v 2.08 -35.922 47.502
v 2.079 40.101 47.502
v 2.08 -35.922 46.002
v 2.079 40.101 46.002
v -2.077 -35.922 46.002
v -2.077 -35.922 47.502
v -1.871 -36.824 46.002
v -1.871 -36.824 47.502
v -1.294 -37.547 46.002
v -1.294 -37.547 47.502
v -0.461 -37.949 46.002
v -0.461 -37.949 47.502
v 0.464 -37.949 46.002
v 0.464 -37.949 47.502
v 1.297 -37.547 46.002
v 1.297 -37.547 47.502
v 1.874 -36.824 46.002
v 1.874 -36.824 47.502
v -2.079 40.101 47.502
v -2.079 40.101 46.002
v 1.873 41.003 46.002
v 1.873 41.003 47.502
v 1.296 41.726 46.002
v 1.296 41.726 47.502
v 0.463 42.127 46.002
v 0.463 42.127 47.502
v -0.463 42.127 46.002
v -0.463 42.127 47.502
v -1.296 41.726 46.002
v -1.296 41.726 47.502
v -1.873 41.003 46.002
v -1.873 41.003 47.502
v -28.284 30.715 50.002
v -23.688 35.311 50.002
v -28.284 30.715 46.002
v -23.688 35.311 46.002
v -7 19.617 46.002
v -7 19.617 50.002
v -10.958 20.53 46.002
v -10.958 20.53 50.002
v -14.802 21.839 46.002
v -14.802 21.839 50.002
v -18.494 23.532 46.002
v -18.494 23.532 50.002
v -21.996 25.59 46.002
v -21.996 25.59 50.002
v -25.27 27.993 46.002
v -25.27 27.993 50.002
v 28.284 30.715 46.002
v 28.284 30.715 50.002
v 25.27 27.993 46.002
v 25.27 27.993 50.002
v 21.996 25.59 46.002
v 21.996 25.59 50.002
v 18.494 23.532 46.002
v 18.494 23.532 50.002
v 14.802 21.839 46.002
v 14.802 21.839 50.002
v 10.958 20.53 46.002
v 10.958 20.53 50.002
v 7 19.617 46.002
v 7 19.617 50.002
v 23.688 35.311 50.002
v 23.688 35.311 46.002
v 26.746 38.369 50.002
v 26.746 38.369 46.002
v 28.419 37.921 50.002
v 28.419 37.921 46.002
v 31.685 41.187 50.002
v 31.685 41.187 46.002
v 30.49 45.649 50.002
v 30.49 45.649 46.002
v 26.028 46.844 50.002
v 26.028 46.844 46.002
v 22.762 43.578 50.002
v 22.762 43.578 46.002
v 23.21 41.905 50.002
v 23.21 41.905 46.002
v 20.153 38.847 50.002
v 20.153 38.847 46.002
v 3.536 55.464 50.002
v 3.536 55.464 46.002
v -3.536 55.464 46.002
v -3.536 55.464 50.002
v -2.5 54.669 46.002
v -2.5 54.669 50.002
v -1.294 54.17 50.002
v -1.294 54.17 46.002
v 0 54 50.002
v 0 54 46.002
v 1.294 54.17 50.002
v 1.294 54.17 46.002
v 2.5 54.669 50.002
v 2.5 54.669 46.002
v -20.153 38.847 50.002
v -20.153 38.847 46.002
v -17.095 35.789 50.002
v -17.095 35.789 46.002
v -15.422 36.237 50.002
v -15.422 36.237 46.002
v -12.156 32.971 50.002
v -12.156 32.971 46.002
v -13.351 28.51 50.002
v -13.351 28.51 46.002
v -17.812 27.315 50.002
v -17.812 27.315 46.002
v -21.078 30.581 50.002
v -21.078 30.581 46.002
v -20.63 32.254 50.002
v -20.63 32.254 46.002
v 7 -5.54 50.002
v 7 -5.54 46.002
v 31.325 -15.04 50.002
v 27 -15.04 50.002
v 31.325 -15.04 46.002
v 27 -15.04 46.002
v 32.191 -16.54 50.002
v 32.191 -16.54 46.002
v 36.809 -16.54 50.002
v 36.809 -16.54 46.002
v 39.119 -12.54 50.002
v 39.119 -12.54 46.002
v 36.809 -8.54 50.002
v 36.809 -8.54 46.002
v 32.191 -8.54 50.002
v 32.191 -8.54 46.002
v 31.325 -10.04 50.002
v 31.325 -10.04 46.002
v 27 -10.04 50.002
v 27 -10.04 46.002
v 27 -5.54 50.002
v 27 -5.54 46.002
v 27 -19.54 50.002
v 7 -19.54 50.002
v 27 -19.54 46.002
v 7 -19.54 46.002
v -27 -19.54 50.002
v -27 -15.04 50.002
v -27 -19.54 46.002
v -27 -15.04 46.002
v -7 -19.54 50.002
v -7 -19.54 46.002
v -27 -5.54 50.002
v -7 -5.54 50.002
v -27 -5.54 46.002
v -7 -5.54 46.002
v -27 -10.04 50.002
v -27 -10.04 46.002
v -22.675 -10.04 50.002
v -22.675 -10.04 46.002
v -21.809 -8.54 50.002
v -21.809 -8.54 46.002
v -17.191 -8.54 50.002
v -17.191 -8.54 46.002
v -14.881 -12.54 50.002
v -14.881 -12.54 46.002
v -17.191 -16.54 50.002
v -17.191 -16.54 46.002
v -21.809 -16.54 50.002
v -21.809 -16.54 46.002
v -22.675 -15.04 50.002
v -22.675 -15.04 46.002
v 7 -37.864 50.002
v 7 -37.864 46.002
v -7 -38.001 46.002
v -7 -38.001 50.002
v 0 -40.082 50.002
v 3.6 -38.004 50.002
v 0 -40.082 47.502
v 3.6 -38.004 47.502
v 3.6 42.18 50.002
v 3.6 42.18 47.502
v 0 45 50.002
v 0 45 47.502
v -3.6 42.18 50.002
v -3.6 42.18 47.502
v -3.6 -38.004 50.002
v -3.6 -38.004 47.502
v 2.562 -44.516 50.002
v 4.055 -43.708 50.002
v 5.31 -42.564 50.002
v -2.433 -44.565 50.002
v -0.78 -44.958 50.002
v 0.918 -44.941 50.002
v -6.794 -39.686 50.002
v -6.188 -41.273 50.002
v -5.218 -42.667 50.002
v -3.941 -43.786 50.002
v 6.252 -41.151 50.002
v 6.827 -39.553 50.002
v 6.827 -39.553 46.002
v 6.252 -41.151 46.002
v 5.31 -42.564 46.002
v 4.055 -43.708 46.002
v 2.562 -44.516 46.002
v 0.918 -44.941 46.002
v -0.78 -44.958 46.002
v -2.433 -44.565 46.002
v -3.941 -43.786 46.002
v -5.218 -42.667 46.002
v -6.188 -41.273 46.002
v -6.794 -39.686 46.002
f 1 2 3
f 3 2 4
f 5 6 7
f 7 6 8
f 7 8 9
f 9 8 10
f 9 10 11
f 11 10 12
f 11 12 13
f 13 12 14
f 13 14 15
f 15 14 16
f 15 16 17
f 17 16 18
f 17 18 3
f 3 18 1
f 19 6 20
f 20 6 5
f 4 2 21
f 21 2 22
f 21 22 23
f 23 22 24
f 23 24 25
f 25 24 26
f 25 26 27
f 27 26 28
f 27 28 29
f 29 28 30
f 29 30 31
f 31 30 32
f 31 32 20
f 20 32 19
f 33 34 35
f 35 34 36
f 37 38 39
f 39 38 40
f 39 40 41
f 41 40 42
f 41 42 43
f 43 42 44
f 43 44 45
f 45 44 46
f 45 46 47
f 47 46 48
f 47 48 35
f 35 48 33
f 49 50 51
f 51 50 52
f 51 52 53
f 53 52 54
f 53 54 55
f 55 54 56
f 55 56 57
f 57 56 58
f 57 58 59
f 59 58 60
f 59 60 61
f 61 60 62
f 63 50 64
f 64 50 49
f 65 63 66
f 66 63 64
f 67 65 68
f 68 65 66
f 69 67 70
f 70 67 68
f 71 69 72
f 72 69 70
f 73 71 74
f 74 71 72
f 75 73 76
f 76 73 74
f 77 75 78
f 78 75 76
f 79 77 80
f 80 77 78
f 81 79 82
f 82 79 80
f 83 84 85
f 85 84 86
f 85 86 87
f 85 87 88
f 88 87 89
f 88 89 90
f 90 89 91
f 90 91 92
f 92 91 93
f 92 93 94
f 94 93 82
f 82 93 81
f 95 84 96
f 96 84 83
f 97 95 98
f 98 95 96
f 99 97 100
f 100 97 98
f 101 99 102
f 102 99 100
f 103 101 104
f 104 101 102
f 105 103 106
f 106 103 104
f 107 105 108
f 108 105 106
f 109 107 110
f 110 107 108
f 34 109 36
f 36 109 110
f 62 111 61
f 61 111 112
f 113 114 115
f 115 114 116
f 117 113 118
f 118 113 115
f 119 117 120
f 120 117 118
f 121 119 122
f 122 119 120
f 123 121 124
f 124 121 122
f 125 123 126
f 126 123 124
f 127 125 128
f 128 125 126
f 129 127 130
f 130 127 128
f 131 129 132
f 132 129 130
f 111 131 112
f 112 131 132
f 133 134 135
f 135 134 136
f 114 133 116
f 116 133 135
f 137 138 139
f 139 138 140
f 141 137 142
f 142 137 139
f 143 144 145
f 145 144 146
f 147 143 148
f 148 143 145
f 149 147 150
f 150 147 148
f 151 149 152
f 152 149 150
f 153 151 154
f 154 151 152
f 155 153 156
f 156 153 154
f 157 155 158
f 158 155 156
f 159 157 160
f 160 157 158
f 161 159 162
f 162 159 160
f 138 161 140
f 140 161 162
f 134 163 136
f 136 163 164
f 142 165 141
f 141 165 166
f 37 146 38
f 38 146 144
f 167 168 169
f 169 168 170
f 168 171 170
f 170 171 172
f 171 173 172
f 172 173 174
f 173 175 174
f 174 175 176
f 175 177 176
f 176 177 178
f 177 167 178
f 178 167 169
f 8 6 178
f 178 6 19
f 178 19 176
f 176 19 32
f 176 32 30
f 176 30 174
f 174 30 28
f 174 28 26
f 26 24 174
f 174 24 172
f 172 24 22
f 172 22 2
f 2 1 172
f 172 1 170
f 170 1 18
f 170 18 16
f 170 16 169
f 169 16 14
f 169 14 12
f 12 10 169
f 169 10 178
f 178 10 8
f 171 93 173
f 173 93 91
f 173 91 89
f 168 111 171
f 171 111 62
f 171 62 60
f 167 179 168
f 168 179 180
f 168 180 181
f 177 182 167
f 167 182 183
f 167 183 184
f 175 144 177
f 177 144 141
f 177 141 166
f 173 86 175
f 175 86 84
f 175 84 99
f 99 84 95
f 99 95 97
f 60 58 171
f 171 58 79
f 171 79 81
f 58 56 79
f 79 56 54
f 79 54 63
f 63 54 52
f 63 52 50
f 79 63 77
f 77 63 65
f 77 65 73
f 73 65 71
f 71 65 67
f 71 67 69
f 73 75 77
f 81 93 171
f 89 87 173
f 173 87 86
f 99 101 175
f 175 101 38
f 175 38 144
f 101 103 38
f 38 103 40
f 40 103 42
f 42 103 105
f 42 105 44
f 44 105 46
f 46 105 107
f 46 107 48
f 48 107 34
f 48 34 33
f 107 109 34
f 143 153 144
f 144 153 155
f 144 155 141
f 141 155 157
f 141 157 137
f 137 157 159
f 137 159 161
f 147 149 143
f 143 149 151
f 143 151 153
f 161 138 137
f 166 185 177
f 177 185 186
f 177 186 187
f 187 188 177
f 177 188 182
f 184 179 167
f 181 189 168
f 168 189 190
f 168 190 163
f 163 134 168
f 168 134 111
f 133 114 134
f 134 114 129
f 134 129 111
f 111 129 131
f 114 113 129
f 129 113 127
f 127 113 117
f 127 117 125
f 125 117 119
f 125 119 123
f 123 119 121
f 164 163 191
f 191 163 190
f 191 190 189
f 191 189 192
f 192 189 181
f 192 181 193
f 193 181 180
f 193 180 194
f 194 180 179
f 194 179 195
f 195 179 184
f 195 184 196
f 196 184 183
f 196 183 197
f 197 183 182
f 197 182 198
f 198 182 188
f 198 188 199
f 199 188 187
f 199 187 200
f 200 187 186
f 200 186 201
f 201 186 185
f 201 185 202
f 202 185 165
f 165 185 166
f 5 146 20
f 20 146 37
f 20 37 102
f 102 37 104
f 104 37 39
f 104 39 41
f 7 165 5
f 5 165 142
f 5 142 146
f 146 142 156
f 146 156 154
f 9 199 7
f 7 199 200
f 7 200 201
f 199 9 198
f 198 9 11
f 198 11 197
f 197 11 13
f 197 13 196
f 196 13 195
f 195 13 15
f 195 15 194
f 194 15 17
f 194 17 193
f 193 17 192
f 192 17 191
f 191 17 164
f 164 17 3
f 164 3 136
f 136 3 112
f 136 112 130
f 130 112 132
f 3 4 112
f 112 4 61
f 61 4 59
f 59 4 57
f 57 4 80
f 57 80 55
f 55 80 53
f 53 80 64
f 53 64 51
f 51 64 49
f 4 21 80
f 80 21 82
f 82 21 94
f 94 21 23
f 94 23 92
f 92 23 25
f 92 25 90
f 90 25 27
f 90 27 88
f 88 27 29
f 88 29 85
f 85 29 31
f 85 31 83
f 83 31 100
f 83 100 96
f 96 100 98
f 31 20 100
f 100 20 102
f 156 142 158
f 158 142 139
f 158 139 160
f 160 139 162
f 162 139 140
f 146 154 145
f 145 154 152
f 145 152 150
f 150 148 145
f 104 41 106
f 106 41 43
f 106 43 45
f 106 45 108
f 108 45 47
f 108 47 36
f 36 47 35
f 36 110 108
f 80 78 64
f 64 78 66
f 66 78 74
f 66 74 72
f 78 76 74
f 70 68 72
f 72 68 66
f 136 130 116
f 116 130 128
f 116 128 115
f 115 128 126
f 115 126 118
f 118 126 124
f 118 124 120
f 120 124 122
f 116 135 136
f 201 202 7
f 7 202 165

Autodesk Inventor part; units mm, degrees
ref_plane "YZ Plane" through (0, 0, 0) normal (1, 0, 0) x (0, 1, 0)
ref_plane "XZ Plane" through (0, 0, 0) normal (0, 1, 0) x (-1, 0, 0)
ref_plane "XY Plane" through (0, 0, 0) normal (0, 0, 1) x (1, 0, 0)
sketch "Náčrt1" plane through (3.6, 12.9231, 50.0016) normal (0, 0, 1) x (1, 0, 0)
  line L0 (3.4, -51.2206) -> (3.4, 32.0765) projected
  line L1 (-10.6, 32.0765) -> (-10.6, -51.2206) projected
  line L2 (3.4, 32.0765) -> (-10.6, 32.0765) projected
  circle A0 centre (-3.5987, -48.8454) radius 2.0783 projected
  line L3 (0, -50.927) -> (0, 0) projected
  line L4 (-3.6, -53.0054) -> (0, -50.927) projected
  line L5 (-7.2, -50.927) -> (-3.6, -53.0054) projected
  arc A1 (-10.6, -50.9238) -> (3.4, -50.787) centre (-3.5993, -50.9238) ccw
  line L6 (3.4, -25.4635) -> (3.4, -18.4635)
  line L7 (3.4, -18.4635) -> (23.4, -18.4635)
  line L8 (23.4, -18.4635) -> (23.4, -32.4635)
  line L9 (23.4, -32.4635) -> (3.4, -32.4635)
  line L10 (3.4, -25.4635) -> (3.4, -32.4635)
  line L11 (23.4, -25.4635) -> (23.4, -22.9635)
  line L12 (23.4, -22.9635) -> (26.9, -22.9635)
  line L13 (26.9, -22.9635) -> (26.9, -27.9635)
  line L14 (26.9, -27.9635) -> (23.4, -27.9635)
  line L15 (23.4, -25.4635) -> (23.4, -27.9635)
  line L16 (35.5188, -25.4635) -> (33.2094, -29.4635)
  line L17 (33.2094, -29.4635) -> (28.5906, -29.4635)
  line L18 (28.5906, -29.4635) -> (27.7246, -27.9635)
  line L19 (27.7246, -22.9635) -> (28.5906, -21.4635)
  line L20 (28.5906, -21.4635) -> (33.2094, -21.4635)
  line L21 (33.2094, -21.4635) -> (35.5188, -25.4635)
  line L22 (26.9, -22.9635) -> (27.7246, -22.9635)
  line L23 (26.9, -27.9635) -> (27.7246, -27.9635)
  line L24 (-10.6, -25.4635) -> (-10.6, -18.4635)
  line L25 (-10.6, -18.4635) -> (-30.6, -18.4635)
  line L26 (-30.6, -18.4635) -> (-30.6, -32.4635)
  line L27 (-30.6, -32.4635) -> (-10.6, -32.4635)
  line L28 (-10.6, -25.4635) -> (-10.6, -32.4635)
  line L29 (-30.6, -25.4635) -> (-30.6, -22.9635)
  line L30 (-30.6, -25.4635) -> (-30.6, -27.9635)
  line L31 (-27.1, -27.9635) -> (-30.6, -27.9635)
  line L32 (-30.6, -22.9635) -> (-27.1, -22.9635)
  line L33 (-27.1, -22.9635) -> (-27.1, -27.9635)
  line L34 (-27.1, -22.9635) -> (-26.2754, -22.9635)
  line L35 (-27.1, -27.9635) -> (-26.2754, -27.9635)
  line L36 (-25.4094, -29.4635) -> (-26.2754, -27.9635)
  line L37 (-26.2754, -22.9635) -> (-25.4094, -21.4635)
  line L38 (-20.7906, -29.4635) -> (-25.4094, -29.4635)
  line L39 (-25.4094, -21.4635) -> (-20.7906, -21.4635)
  line L40 (-18.4812, -25.4635) -> (-20.7906, -29.4635)
  line L41 (-20.7906, -21.4635) -> (-18.4812, -25.4635)
  line L42 (-3.6, 32.0765) -> (-3.6, 46.0765)
  arc A2 (-31.8843, 17.7922) -> (24.6843, 17.7922) centre (-3.6, 46.0765) ccw
  line L43 (-3.6, 46.0765) -> (-31.8843, 17.7922)
  line L44 (-3.6, 46.0765) -> (24.6843, 17.7922)
  line L45 (-3.6, 46.0765) -> (48.0562, 46.0765) construction
  line L46 (-25.5203, 24.1562) -> (-23.7525, 25.9239)
  line L47 (-25.5203, 24.1562) -> (-27.2881, 22.3884)
  line L48 (-24.8132, 19.9135) -> (-27.2881, 22.3884)
  line L49 (-23.7525, 25.9239) -> (-21.2777, 23.4491)
  line L50 (-21.2777, 23.4491) -> (-24.8132, 19.9135)
  line L51 (-21.2777, 23.4491) -> (-20.6946, 22.866)
  line L52 (-24.8132, 19.9135) -> (-24.2301, 19.3305)
  line L53 (-20.6946, 22.866) -> (-19.0216, 23.3143)
  line L54 (-24.6784, 17.6574) -> (-24.2301, 19.3305)
  line L55 (-19.0216, 23.3143) -> (-15.7556, 20.0483)
  line L56 (-16.951, 15.5869) -> (-21.4124, 14.3914)
  line L57 (-15.7556, 20.0483) -> (-16.951, 15.5869)
  line L58 (-21.4124, 14.3914) -> (-24.6784, 17.6574)
  line L59 (26.8896, 32.7254) -> (28.085, 28.264)
  line L60 (22.4282, 33.9209) -> (26.8896, 32.7254)
  line L61 (28.085, 28.264) -> (24.819, 24.998)
  line L62 (19.1622, 30.6549) -> (22.4282, 33.9209)
  line L63 (18.3203, 24.1562) -> (16.5525, 25.9239)
  line L64 (19.6105, 28.9819) -> (19.1622, 30.6549)
  line L65 (24.819, 24.998) -> (23.146, 25.4463)
  line L66 (19.0274, 28.3988) -> (19.6105, 28.9819)
  line L67 (19.0274, 28.3988) -> (22.563, 24.8633)
  line L68 (22.563, 24.8633) -> (23.146, 25.4463)
  line L69 (22.563, 24.8633) -> (20.0881, 22.3884)
  line L70 (18.3203, 24.1562) -> (20.0881, 22.3884)
  line L71 (16.5525, 25.9239) -> (19.0274, 28.3988)
  line L72 (24.6843, 17.7922) -> (18.3203, 24.1562)
  circle A3 centre (-3.6, 46.0765) radius 5
  line L73 (-7.2, -50.927) -> (-7.2, 32.0765)
  line L74 (0, -50.927) -> (0, 32.0765)
  line L75 (-7.2, 29.2565) -> (-3.6, 32.0765)
  line L76 (-3.6, 32.0765) -> (0, 29.2565)
  line L77 (-3.6, 29.2565) -> (-1.5215, 29.2565) construction
  circle A4 centre (-3.6, 27.178) radius 2.0785
  line L78 (-5.6785, 27.1779) -> (-5.677, -48.8455)
  line L79 (-1.5215, 27.1779) -> (-1.5203, -48.8454)
  point P0 (30.9, -25.4635)
  point P1 (26.9, -25.4635)
  point P2 (-27.1, -25.4635)
  point P3 (-23.1, -25.4635)
  point P4 (-23.0454, 21.6813)
  point P5 (-20.217, 18.8529)
  point P6 (23.4958, 25.7125)
  point P7 (23.6236, 29.4595)
  point P8 (20.7952, 26.631)
  point P9 (-10.6, 6.6937)
  point P10 (3.4, 6.6937)
  point P11 (16.5525, 25.9239)
  point P12 (-0.0645, 42.5409)
  point P13 (-7.1355, 42.5409)
  dimension "d4" = 7
  dimension "d5" = 20
  dimension "k" = 14
  dimension "d9" = 3.5
  dimension "d10" = 5
  dimension "d14" = 8
  dimension "d15" = 4
  dimension "d16" = 7
  dimension "d19" = 14
  dimension "d21" = 45
  dimension "d22" = 40
  dimension "d24" = 10
  dimension "d34" = 4.1567
  dimension "d35" = 2.0817
  dimension "d36" = 2.82
extrude "Vysunutí1" add sketch "Náčrt1" against normal blind 4 contours A1 L1 A2 L73 L5 L4 L3 L74 L0 | A2 L74 L2 L0 | L74 L3 L4 L5 L73 A2 L78 A0 L79 | A2 L79 A4 L78 L73 L75 L76 L74 | L1 L2 L73 A2 | L74 L76 L2 | L79 A0 L78 A2 | A2 L78 A4 L79 | L75 L73 L2 | A4 | A0
extrude "Vysunutí2" cut sketch "Náčrt1" against normal blind 2.5 contours L74 L3 L4 L5 L73 A2 L78 A0 L79 | A2 L79 A4 L78 L73 L75 L76 L74 | L79 A0 L78 A2 | A2 L78 A4 L79 | A4 | A0
extrude "Vysunutí3" add sketch "Náčrt1" against normal blind 4 contours L0 L7 L8 L9 | L27 L26 L31 L35 L36 L38 L40 L41 L39 L37 L34 L32 L25 L1 | L8 L12 L13 L14 | L13 L22 L19 L20 L21 L16 L17 L18 L23
extrude "Vysunutí4" add sketch "Náčrt1" against normal blind 4 contours L0 L2 L42 A3 L44 A2 | A2 L43 L48 L52 L54 L58 L56 L57 L55 L53 L51 L49 A3 L42 L2 L1 | L44 L71 L67 L69 | L67 L66 L64 L62 L60 L59 L61 L65 L68
sketch "Náčrt2" plane through (3.6, 12.9231, 50.0016) normal (0, 0, 1) x (1, 0, 0)
  line L0 (-7.2, 0) -> (-3.6, 2.0785) projected
  line L1 (-3.6, 2.0785) -> (0, 0) projected
  arc A0 (-1.525, -2.1008) -> (-5.675, -2.1796) centre (-3.6012, -2.0791) ccw projected
  line L2 (-5.675, -2.1796) -> (-5.675, -48.7542) projected
  line L3 (-1.525, -48.7062) -> (-1.525, -2.1008) projected
  arc A1 (-5.675, -48.7542) -> (-1.525, -48.7062) centre (-3.5987, -48.8454) ccw projected
  line L4 (-3.6, -53.0054) -> (-7.2, -50.927) projected
  line L5 (-7.2, -50.927) -> (-7.2, 0) projected
  line L6 (0, -50.927) -> (-3.6, -53.0054) projected
  line L7 (0, 29.2565) -> (0, -50.927) projected
  line L8 (-7.2, 35) -> (-3.6, 37.0785)
  line L9 (-3.6, 37.0785) -> (0, 35)
  line L10 (-7.2, 0) -> (-7.2, 35)
  line L11 (0, 0) -> (0, 35)
  circle A2 centre (-3.6012, -2.0791) radius 2.0763
  circle A3 centre (-3.601, 32.9202) radius 2.0763
  line L12 (-3.6406, -0.0032) -> (-3.6, 2.0785)
  line L13 (-5.675, -2.1796) -> (-5.6773, 32.9201)
  line L14 (-1.525, -2.1008) -> (-1.5247, 32.9202)
  line L15 (-7.2, 0) -> (-5.6752, 0.8803)
  line L16 (-5.6752, 0.8803) -> (-3.6, 2.0785)
  line L17 (-3.6, 2.0785) -> (-1.525, 0.8804)
  line L18 (-1.525, 0.8804) -> (0, 0)
  point P0 (-3.6, -12.9231)
  dimension "d27" = 35
  dimension "d28" = 37.0817
  dimension "d" = 4.1525
  dimension "d30" = 4.1525
  dimension "d31" = 4.1583
  dimension "d32" = 3.6012
  dimension "d33" = 3.601
extrude "Vysunutí5" cut sketch "Náčrt1" against normal through all contours L79 A0 L78 A2 | A2 L78 A4 L79 | A4 | A0
equation "\"d16\" = 0.5 * k"
equation "\"d30\" = d"
properties part number "New_08_Crane_Arm_Vertical_XL"
